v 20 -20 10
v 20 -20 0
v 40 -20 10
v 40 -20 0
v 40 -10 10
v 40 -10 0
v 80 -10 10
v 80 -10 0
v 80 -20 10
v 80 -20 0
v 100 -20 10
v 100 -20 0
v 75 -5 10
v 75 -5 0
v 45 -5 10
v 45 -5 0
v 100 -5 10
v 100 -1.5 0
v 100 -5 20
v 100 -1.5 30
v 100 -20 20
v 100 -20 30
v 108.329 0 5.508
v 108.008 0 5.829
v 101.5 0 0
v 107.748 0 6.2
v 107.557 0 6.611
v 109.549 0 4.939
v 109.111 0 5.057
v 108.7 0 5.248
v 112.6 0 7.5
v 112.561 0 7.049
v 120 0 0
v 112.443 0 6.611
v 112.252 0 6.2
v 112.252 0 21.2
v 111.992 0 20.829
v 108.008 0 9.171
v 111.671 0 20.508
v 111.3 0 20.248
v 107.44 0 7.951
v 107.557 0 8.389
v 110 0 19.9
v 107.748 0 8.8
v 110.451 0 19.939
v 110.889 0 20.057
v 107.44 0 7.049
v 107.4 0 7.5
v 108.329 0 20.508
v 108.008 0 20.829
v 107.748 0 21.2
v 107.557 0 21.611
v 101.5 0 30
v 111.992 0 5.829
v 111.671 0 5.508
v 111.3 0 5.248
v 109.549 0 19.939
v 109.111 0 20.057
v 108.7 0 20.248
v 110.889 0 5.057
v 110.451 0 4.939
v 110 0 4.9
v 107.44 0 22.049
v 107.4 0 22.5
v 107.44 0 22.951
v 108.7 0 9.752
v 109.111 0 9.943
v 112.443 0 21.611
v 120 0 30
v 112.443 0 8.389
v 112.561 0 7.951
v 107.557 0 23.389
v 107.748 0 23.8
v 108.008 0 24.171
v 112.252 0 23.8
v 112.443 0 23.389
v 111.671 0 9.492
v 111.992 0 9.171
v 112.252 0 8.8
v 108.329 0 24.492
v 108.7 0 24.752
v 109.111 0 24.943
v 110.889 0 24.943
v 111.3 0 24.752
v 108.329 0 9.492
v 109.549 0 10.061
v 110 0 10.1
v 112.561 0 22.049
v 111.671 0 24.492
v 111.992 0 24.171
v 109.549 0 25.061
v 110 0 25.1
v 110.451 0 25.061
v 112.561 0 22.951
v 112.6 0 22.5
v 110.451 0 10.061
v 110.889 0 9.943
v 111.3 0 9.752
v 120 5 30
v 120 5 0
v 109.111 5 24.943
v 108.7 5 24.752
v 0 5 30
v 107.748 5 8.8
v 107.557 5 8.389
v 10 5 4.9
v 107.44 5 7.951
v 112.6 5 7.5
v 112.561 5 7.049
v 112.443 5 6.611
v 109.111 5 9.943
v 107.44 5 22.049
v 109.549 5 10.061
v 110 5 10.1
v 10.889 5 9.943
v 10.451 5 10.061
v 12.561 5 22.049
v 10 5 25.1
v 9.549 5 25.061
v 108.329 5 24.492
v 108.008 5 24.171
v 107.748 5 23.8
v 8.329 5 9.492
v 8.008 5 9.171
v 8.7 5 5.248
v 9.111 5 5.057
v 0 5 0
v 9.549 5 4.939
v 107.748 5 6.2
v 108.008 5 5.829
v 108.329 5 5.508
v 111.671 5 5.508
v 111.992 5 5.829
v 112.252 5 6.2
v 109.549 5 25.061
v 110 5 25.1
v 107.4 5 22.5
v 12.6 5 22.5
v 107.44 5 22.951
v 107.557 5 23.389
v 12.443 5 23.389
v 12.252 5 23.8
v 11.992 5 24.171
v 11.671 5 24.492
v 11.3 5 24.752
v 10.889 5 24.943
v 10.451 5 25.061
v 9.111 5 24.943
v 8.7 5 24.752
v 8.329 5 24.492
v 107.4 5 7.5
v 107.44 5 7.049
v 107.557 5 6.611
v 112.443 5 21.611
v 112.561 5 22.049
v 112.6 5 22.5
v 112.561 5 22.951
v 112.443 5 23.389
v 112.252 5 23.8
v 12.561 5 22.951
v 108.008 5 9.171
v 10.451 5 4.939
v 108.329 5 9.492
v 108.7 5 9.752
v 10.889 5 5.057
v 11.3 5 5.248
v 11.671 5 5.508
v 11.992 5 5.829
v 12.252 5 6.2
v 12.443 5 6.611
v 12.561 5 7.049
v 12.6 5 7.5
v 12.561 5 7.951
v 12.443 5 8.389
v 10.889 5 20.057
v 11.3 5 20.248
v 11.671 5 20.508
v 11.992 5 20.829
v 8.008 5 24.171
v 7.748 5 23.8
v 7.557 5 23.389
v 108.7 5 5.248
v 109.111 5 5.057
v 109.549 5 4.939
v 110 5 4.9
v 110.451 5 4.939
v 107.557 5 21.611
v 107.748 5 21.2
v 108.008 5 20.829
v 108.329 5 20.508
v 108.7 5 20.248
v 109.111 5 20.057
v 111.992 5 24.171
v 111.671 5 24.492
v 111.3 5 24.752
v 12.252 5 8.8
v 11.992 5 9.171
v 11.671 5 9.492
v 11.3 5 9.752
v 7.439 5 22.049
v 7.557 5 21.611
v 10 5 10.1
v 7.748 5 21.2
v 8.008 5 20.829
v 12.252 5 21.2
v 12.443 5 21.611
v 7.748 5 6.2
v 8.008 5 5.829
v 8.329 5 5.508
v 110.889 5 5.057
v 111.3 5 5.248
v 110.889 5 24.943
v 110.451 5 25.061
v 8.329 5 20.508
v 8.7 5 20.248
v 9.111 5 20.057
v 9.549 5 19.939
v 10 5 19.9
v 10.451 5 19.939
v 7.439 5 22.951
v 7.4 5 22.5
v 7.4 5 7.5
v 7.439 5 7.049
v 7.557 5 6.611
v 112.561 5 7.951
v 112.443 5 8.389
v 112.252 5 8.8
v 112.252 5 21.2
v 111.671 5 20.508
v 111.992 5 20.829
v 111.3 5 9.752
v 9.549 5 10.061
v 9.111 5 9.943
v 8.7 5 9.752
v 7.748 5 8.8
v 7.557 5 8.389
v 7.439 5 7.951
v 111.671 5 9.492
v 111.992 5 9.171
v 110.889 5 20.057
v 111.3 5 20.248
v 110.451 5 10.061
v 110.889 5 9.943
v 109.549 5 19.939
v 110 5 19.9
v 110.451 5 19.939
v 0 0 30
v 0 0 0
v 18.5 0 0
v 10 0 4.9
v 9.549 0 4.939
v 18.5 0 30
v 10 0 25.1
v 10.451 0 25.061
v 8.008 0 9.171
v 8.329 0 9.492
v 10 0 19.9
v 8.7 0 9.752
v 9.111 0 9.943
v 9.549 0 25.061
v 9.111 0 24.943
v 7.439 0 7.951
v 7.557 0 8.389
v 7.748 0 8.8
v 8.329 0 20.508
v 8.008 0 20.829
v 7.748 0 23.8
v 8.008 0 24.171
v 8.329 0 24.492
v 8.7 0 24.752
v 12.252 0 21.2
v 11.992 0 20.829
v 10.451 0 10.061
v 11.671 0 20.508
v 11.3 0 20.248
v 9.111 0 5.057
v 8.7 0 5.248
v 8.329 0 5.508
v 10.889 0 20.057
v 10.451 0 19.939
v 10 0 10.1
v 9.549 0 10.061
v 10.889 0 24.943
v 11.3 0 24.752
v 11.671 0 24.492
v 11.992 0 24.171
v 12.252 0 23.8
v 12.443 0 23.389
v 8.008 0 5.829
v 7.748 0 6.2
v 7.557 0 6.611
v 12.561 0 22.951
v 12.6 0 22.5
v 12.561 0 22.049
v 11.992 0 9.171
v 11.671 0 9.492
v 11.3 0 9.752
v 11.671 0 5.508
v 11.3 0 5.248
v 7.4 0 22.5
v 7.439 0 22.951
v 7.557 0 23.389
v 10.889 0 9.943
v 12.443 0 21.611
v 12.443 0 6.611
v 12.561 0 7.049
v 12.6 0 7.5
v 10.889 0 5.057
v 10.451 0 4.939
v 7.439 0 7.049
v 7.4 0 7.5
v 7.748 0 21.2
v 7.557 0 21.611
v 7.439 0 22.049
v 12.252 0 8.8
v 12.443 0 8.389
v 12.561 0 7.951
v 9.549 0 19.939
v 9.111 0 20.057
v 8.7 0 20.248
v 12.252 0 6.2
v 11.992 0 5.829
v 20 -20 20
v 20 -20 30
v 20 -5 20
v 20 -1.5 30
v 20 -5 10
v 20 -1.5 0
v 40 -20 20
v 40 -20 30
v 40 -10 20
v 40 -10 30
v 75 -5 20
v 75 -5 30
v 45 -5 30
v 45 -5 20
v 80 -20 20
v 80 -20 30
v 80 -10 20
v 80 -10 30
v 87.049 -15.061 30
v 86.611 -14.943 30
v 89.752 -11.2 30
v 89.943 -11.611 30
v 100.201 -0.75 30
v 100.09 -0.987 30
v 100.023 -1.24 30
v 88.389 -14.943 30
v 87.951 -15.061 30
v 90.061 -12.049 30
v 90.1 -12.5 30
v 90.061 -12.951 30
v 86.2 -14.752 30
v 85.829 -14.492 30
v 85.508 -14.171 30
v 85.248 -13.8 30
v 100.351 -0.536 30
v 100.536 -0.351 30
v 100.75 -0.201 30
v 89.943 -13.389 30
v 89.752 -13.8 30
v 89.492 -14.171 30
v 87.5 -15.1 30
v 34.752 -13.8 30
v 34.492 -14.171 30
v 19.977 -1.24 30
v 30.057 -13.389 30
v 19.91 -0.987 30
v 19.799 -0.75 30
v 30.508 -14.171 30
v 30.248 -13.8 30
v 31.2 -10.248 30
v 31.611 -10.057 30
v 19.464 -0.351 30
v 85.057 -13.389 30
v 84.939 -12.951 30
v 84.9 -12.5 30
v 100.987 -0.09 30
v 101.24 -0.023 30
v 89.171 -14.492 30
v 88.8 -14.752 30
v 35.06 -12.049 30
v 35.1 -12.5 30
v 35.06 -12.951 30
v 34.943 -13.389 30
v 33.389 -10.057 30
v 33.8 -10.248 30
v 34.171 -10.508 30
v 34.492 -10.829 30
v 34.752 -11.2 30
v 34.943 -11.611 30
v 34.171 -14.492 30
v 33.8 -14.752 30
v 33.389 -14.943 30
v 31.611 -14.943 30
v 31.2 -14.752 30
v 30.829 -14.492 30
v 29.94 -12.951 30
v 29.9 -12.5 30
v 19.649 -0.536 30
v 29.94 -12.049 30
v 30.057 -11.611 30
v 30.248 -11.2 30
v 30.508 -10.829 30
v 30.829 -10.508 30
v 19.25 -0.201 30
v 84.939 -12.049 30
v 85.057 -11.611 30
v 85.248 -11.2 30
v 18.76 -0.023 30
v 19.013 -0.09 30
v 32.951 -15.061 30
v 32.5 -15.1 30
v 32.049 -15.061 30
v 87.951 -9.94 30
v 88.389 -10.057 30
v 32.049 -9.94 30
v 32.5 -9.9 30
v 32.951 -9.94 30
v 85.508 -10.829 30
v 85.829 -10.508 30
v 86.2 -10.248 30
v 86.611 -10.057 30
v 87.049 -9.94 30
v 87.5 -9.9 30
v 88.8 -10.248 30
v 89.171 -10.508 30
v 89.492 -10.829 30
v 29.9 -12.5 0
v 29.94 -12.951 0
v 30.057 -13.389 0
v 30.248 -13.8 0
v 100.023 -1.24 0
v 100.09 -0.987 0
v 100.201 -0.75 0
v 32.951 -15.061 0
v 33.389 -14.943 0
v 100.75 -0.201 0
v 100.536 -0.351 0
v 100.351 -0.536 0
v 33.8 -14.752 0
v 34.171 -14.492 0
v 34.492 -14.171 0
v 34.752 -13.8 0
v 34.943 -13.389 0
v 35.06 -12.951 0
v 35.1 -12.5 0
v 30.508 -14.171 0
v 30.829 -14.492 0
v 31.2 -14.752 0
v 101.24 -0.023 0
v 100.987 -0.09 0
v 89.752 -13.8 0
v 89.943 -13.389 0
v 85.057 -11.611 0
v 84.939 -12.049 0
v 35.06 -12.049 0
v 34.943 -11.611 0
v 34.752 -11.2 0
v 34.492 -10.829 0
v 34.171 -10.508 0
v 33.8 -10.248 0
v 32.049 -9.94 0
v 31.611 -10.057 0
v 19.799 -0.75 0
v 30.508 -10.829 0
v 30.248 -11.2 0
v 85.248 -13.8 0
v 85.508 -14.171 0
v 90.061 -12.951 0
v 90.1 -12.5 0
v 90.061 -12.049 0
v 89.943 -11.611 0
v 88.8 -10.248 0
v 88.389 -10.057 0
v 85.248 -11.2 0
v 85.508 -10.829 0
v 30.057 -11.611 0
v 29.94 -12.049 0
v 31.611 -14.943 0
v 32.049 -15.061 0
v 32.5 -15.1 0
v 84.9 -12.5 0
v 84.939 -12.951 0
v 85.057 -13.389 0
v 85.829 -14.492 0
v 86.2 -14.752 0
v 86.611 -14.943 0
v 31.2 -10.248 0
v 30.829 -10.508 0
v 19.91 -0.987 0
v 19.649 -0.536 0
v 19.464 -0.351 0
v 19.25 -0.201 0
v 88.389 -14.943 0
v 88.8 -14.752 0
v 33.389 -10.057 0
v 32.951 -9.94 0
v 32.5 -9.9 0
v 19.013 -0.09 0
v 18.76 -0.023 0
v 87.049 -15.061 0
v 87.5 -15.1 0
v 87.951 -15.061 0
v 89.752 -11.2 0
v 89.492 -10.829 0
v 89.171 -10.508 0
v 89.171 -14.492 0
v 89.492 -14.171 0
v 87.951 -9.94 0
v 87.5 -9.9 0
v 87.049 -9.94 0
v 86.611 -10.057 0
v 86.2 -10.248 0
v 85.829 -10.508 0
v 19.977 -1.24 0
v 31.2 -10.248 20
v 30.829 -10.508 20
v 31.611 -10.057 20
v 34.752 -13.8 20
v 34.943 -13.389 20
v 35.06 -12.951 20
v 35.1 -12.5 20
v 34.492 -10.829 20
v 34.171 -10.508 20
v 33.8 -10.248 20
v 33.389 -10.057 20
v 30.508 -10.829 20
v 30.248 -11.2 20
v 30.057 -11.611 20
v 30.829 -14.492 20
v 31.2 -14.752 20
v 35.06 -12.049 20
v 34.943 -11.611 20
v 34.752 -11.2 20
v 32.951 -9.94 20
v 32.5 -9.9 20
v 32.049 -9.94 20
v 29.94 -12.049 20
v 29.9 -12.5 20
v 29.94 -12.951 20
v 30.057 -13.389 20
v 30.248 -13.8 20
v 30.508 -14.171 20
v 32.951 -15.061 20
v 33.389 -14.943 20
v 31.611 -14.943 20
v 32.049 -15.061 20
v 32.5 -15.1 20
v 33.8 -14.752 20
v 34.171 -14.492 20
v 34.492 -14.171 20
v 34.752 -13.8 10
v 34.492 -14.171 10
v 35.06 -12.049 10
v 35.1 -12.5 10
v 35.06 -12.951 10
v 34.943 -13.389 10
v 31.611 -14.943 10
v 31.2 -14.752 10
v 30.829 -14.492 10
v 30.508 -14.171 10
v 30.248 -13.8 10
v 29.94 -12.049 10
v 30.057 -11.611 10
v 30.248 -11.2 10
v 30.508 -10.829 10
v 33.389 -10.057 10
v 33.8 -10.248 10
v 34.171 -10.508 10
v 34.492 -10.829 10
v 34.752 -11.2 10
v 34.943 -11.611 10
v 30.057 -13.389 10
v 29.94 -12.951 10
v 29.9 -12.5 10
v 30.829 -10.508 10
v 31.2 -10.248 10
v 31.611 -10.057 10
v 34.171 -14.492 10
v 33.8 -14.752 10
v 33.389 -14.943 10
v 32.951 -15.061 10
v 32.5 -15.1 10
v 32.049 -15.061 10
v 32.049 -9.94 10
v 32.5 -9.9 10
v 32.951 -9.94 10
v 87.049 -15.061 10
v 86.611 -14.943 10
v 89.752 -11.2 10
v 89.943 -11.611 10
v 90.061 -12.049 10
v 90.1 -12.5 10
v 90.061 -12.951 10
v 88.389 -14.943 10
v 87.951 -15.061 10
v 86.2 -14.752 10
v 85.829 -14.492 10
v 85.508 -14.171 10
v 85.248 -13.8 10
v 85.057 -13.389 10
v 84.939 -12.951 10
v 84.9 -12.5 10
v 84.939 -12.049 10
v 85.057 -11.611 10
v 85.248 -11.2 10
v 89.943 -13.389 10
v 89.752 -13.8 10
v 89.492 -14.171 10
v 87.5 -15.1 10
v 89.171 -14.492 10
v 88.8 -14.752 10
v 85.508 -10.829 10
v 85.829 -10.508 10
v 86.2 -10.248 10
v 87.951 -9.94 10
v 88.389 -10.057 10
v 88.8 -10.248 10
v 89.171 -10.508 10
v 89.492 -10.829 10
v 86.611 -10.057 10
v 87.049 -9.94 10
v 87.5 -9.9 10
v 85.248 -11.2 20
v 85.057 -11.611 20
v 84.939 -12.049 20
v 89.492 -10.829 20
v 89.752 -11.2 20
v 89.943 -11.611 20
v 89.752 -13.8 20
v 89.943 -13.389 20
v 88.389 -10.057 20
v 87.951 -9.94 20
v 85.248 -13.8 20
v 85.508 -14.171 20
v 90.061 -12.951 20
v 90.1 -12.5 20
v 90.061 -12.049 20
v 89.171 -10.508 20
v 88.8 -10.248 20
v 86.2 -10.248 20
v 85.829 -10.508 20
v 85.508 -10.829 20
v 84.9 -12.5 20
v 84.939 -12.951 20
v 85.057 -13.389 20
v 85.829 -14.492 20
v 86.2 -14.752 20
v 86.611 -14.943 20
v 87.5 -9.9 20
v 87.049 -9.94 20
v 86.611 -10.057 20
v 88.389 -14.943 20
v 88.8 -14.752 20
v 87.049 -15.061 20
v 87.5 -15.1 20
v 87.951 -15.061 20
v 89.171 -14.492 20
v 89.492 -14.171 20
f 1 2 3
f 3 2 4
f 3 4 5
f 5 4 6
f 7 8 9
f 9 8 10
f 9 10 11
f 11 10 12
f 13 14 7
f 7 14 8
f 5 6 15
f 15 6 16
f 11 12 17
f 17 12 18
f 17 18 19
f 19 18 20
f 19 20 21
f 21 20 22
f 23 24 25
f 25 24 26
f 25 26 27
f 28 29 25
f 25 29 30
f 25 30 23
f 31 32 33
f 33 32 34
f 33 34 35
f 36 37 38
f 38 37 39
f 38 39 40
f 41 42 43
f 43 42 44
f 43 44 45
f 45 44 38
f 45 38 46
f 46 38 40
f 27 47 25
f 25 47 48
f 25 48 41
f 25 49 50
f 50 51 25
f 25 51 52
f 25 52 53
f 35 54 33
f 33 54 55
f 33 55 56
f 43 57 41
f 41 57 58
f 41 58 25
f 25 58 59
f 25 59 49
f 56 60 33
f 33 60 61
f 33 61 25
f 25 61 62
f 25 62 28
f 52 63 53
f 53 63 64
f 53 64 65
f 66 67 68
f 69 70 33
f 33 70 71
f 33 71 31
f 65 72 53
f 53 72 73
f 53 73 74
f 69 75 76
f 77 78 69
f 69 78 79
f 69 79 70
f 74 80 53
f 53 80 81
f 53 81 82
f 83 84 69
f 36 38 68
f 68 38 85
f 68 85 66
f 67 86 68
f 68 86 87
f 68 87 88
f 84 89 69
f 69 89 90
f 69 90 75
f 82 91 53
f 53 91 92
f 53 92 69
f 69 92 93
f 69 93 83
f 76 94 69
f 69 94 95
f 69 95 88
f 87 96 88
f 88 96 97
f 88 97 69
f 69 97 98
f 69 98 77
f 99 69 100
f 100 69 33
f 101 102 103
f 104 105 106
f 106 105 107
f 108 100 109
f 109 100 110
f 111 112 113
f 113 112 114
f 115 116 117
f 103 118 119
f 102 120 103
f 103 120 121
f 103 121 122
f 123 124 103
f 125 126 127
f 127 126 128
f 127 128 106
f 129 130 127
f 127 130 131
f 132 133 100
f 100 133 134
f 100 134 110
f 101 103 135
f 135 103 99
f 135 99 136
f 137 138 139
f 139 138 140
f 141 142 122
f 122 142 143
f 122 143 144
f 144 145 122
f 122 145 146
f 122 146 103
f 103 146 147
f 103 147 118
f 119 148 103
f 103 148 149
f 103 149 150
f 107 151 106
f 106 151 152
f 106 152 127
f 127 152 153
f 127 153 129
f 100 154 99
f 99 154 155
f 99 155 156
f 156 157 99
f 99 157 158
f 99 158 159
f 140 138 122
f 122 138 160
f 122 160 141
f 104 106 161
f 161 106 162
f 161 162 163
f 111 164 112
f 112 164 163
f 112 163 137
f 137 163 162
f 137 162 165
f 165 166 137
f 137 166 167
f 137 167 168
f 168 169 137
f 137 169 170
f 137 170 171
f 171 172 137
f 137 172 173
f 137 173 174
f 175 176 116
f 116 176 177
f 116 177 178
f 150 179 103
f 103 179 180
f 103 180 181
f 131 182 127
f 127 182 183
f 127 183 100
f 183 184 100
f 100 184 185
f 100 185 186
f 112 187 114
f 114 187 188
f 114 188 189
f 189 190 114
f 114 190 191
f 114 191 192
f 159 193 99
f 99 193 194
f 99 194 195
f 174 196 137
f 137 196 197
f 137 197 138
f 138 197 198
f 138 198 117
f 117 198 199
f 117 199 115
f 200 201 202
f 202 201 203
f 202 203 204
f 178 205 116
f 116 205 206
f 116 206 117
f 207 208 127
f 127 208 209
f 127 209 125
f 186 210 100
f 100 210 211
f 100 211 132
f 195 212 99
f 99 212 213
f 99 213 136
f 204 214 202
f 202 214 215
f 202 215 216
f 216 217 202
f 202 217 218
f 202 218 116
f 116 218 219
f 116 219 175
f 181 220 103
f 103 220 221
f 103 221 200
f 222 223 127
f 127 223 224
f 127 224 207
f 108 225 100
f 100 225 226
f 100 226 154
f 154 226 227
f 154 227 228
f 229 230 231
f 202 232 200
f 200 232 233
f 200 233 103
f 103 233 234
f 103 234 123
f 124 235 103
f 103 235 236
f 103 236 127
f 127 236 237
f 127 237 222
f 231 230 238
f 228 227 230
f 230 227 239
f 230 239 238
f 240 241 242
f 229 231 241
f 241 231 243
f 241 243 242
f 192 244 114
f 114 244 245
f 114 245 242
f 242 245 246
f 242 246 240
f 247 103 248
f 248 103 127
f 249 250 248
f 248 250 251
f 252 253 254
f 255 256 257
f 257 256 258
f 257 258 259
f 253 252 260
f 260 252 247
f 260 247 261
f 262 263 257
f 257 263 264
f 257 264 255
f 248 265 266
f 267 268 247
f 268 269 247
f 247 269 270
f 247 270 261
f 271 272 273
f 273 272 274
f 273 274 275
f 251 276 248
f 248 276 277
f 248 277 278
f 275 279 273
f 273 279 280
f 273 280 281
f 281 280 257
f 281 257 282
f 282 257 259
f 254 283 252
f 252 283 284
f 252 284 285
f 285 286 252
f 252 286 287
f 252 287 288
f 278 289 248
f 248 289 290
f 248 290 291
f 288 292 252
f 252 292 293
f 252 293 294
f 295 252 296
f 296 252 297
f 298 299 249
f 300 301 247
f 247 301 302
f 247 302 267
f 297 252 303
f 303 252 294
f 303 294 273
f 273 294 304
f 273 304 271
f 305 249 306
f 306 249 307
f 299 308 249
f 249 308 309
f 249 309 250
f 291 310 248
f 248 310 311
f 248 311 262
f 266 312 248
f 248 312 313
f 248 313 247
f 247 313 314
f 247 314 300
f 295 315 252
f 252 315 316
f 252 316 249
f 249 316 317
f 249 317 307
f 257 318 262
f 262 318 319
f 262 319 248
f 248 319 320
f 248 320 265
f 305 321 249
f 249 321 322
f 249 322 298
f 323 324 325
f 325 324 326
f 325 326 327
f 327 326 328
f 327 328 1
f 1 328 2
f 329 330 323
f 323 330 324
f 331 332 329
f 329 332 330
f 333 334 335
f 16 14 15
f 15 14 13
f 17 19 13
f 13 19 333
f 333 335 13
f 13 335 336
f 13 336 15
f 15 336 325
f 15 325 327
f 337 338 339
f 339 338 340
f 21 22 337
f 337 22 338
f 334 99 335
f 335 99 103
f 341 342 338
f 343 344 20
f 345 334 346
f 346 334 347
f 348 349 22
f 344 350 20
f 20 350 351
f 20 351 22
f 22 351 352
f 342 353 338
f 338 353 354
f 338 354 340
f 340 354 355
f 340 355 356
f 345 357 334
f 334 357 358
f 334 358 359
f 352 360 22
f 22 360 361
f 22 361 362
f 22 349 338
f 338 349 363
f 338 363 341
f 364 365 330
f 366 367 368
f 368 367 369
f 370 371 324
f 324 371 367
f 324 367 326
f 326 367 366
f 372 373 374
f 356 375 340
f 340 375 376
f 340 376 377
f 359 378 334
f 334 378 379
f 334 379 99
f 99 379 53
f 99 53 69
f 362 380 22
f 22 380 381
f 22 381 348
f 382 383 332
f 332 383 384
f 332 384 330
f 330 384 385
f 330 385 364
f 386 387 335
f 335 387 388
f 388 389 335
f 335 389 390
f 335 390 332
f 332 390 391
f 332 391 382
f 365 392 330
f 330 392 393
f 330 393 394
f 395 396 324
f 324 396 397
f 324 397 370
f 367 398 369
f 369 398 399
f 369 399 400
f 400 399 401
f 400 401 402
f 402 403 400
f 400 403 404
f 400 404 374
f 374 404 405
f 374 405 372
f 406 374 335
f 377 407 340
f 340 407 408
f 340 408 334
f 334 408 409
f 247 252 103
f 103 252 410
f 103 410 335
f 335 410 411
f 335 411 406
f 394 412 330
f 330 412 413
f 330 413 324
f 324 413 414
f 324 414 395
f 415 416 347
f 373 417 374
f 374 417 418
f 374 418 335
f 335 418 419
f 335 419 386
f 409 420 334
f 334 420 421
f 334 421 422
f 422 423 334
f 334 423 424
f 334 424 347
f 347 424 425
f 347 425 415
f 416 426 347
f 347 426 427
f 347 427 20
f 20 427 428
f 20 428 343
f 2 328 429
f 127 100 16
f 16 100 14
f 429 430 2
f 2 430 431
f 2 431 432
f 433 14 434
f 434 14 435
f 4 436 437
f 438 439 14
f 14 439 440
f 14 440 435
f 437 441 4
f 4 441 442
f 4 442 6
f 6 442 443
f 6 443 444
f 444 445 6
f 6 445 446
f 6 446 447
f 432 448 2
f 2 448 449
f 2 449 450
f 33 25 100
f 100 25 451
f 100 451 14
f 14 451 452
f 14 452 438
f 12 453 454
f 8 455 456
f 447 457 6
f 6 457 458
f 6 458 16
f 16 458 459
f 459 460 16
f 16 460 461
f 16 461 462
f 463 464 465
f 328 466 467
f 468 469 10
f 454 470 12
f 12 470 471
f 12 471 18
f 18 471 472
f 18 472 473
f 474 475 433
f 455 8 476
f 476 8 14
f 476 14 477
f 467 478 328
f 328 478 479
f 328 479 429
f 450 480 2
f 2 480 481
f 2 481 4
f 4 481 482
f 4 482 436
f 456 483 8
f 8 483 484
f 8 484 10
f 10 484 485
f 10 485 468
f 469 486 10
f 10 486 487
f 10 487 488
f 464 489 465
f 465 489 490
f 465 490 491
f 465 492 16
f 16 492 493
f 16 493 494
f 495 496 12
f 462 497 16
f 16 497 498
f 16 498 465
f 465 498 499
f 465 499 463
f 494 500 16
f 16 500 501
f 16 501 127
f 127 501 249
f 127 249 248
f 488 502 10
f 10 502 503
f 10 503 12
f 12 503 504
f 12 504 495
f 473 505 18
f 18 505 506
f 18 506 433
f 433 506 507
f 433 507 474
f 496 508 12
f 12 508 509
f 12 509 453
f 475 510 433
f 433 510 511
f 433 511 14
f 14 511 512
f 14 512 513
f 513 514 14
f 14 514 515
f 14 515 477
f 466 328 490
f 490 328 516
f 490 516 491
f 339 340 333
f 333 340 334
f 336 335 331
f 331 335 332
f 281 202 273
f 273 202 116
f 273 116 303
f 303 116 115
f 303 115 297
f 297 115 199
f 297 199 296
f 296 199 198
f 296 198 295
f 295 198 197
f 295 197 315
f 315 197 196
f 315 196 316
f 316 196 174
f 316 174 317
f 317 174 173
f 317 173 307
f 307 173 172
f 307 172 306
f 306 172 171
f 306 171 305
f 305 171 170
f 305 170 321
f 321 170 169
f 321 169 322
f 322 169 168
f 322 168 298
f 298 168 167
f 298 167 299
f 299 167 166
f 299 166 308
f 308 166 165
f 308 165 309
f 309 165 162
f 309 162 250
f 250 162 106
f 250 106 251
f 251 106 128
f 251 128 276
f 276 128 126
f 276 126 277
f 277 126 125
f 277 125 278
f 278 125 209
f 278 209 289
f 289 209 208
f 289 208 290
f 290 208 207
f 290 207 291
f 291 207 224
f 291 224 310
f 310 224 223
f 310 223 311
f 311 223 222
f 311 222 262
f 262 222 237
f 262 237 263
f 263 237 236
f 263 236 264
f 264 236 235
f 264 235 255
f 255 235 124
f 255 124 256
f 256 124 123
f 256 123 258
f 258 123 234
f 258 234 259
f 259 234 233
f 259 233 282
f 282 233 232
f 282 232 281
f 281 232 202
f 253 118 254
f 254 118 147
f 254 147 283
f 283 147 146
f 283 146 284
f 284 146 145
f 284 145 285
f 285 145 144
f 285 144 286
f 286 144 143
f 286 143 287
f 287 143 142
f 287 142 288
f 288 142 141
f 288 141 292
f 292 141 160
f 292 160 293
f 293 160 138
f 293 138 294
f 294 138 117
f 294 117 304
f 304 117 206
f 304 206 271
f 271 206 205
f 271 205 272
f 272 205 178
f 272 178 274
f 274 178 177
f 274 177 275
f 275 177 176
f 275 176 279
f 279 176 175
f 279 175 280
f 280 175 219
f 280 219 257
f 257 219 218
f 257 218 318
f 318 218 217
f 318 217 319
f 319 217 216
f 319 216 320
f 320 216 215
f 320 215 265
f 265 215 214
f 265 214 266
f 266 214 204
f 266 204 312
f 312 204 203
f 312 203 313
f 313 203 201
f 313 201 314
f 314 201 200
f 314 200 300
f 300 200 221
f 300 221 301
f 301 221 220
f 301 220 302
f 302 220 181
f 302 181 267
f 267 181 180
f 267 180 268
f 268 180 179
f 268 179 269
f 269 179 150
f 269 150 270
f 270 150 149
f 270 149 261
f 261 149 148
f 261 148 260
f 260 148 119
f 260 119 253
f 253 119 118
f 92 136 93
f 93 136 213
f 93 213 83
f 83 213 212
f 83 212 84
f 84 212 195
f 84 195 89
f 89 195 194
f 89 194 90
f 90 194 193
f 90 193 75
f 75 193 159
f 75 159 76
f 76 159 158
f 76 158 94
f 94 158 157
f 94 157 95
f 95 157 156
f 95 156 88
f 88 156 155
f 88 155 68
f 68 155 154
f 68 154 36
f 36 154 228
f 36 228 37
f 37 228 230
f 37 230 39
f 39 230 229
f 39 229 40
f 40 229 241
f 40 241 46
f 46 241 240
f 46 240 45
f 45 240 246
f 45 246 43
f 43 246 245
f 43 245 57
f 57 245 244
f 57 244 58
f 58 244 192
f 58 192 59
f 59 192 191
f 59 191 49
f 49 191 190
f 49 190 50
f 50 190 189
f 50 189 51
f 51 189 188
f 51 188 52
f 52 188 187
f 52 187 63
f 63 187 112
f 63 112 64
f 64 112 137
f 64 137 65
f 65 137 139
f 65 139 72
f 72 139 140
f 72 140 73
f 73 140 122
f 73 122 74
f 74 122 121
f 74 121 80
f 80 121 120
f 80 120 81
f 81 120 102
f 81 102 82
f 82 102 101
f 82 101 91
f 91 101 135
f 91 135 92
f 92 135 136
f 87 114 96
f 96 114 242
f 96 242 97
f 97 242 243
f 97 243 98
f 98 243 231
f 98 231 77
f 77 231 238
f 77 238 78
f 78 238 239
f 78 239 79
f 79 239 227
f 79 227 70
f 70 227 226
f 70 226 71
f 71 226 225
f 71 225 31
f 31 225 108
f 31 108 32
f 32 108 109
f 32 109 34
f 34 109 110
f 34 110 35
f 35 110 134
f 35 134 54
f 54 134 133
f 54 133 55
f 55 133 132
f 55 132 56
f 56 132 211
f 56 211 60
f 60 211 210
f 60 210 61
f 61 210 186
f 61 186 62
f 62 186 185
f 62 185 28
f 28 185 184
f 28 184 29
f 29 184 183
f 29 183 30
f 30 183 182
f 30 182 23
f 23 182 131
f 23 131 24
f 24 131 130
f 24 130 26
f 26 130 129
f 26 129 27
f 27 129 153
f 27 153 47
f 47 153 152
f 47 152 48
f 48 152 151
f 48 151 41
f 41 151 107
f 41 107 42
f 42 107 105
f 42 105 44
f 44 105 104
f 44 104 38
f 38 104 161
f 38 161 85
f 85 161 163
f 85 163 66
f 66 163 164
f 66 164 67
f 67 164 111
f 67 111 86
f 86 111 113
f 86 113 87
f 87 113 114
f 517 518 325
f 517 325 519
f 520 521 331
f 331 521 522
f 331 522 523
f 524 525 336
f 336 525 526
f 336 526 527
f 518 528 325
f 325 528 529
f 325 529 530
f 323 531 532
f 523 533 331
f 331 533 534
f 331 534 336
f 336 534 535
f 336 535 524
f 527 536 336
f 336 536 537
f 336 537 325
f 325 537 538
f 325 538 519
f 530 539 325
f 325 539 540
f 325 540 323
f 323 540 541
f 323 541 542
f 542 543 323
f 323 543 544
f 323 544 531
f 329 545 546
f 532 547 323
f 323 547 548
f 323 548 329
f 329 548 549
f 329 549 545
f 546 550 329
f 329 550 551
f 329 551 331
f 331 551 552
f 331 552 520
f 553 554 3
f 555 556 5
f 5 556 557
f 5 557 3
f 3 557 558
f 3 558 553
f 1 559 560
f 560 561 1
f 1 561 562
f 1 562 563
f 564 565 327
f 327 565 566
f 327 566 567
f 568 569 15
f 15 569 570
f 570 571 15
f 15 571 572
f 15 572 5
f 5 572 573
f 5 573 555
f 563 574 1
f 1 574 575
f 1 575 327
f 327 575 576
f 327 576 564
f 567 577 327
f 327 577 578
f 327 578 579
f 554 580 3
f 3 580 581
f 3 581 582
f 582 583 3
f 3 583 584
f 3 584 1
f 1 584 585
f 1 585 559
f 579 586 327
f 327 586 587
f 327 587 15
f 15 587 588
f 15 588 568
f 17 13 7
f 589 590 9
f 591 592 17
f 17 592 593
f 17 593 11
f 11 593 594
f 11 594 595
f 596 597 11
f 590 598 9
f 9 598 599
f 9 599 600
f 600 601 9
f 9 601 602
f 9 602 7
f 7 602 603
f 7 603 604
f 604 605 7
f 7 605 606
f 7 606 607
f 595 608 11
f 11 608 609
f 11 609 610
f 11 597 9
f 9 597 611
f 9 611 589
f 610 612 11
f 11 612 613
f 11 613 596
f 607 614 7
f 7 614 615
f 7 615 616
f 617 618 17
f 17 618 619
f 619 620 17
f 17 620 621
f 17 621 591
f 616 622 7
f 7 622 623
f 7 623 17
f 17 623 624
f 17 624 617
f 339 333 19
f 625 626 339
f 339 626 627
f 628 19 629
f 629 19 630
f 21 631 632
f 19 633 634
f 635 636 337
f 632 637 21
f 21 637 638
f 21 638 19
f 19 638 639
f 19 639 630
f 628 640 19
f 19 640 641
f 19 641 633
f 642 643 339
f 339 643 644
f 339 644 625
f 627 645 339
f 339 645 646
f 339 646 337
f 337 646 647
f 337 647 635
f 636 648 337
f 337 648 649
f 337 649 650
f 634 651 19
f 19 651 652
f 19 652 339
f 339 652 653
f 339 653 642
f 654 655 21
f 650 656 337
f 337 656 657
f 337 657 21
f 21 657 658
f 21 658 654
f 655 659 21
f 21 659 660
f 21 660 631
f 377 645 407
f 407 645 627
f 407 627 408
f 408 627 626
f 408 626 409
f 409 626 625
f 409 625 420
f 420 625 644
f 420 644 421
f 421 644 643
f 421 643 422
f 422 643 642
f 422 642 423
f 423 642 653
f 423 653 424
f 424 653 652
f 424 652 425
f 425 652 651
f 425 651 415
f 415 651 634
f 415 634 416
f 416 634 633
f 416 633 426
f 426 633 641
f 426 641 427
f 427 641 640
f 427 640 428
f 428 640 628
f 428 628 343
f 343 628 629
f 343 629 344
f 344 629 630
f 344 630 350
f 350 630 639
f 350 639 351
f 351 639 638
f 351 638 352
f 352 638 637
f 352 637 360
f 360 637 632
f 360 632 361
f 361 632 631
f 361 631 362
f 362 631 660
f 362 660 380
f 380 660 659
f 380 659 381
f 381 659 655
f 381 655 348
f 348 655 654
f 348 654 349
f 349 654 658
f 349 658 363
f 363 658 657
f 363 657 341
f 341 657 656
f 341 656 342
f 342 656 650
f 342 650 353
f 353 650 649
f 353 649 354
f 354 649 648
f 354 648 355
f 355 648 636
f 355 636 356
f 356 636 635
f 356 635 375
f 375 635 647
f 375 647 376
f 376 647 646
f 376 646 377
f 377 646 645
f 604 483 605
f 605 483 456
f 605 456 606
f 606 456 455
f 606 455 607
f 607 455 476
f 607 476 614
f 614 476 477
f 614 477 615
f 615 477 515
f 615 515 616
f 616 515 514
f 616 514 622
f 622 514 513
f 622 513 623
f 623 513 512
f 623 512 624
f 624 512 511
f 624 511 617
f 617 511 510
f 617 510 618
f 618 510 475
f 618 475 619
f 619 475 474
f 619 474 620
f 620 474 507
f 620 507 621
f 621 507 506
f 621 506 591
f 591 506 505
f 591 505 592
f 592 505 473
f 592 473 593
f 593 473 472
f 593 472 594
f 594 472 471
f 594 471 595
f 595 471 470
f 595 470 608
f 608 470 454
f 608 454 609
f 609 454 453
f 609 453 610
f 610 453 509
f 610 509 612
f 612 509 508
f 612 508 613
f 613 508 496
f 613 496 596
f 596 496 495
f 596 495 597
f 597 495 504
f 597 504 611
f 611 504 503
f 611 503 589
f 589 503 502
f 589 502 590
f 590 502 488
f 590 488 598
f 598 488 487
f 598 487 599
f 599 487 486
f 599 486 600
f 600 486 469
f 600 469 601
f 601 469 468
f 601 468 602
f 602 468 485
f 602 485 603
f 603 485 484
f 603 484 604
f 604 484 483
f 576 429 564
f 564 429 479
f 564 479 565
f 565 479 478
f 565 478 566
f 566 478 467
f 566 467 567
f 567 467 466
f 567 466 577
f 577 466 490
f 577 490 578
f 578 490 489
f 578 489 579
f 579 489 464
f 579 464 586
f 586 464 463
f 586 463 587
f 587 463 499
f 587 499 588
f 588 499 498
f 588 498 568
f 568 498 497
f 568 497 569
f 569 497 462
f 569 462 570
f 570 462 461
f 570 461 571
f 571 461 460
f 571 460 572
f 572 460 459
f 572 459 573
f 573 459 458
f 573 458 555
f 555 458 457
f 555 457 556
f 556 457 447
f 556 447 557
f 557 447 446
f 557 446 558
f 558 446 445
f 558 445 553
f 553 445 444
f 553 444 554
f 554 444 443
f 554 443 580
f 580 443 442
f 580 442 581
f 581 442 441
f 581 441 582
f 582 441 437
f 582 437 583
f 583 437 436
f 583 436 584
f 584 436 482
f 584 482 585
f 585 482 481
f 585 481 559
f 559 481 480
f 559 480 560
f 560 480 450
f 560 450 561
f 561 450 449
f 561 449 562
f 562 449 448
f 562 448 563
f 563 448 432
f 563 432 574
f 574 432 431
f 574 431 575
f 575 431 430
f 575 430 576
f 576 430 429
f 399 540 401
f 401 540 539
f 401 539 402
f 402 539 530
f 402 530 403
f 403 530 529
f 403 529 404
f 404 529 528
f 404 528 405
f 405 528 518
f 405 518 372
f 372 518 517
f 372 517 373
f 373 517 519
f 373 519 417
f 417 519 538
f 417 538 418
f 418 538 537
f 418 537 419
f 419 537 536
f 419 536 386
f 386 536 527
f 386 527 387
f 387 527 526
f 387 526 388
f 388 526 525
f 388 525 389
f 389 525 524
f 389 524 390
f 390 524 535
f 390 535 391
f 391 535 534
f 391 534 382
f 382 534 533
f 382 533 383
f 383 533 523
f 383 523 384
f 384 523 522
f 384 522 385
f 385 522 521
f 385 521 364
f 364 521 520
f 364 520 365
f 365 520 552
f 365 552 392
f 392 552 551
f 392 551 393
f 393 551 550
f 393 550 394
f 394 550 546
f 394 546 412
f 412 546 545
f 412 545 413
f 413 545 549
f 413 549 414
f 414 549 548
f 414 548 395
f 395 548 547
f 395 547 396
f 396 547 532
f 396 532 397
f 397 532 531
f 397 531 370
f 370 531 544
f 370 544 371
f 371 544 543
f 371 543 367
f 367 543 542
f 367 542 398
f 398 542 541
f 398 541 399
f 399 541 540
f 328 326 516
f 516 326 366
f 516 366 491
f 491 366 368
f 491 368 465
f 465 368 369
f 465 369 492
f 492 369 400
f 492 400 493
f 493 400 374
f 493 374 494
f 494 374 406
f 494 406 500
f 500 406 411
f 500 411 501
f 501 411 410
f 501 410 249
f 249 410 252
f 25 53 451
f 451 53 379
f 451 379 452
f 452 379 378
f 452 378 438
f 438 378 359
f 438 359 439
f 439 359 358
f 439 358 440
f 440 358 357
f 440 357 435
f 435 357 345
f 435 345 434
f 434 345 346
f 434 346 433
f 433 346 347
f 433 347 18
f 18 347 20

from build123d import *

# Parameters (mm, degrees)
EXTRUDE_1_DEPTH     = 30
CHAMFER_2_SIZE      = 5
SKETCH_2_R          = 2.6
CUT_EXTRUDE_1_DEPTH = 127.194294641
SKETCH_3_W          = 10
SKETCH_3_H          = 15
CUT_EXTRUDE_2_DEPTH = 107.301458127
SKETCH_4_R          = 2.6
CUT_EXTRUDE_3_DEPTH = 126.299640861
FILLET_1_R          = 1.5


with BuildPart() as part:
    # 草图1 → 凸台-拉伸1 (new body)
    with BuildSketch(Plane.XY):
        Polygon((20, 0), (20, -20), (40, -20), (40, -5), (80, -5), (80, -20), (100, -20), (100, 0), (120, 0), (120, 5), (0, 5), (0, 0), align=None)
    extrude(amount=EXTRUDE_1_DEPTH)

    # 倒角2
    chamfer_2_edges = [part.edges().sort_by_distance(p)[0] for p in [
        (80, -5, 15),
        (40, -5, 15),
    ]]
    chamfer(chamfer_2_edges, length=CHAMFER_2_SIZE)

    # 草图2 → 切除-拉伸1 (cut, through all)
    with BuildSketch(Plane(origin=(0, 5, 0), x_dir=(1, 0, 0), z_dir=(0, 1, 0))):
        with Locations(Location((10, -7.5, 0), (0, 0, 270))):
            Circle(SKETCH_2_R)
        with Locations(Location((10, -22.5, 0), (0, 0, 270))):
            Circle(SKETCH_2_R)
        with Locations(Location((110, -22.5, 0), (0, 0, 270))):
            Circle(SKETCH_2_R)
        with Locations(Location((110, -7.5, 0), (0, 0, 270))):
            Circle(SKETCH_2_R)
    extrude(amount=-CUT_EXTRUDE_1_DEPTH, mode=Mode.SUBTRACT)

    # 草图3 → 切除-拉伸2 (cut, through all)
    with BuildSketch(Plane.ZY.offset(-20)):
        with Locations((15, -12.5)):
            Rectangle(SKETCH_3_W, SKETCH_3_H)
    extrude(amount=-CUT_EXTRUDE_2_DEPTH, mode=Mode.SUBTRACT)

    # 草图4 → 切除-拉伸3 (cut, through all)
    with BuildSketch(Plane(origin=(0, 0, 0), x_dir=(-1, 0, 0), z_dir=(0, 0, -1))):
        with Locations((-87.5, -12.5)):
            Circle(SKETCH_4_R)
        with Locations((-32.5, -12.5)):
            Circle(SKETCH_4_R)
    extrude(amount=-CUT_EXTRUDE_3_DEPTH, mode=Mode.SUBTRACT)

    # 圆角1
    fillet_1_edges = [part.edges().sort_by_distance(p)[0] for p in [
        (20, 0, 15),
        (100, 0, 15),
    ]]
    fillet(fillet_1_edges, radius=FILLET_1_R)


solid = part.part
